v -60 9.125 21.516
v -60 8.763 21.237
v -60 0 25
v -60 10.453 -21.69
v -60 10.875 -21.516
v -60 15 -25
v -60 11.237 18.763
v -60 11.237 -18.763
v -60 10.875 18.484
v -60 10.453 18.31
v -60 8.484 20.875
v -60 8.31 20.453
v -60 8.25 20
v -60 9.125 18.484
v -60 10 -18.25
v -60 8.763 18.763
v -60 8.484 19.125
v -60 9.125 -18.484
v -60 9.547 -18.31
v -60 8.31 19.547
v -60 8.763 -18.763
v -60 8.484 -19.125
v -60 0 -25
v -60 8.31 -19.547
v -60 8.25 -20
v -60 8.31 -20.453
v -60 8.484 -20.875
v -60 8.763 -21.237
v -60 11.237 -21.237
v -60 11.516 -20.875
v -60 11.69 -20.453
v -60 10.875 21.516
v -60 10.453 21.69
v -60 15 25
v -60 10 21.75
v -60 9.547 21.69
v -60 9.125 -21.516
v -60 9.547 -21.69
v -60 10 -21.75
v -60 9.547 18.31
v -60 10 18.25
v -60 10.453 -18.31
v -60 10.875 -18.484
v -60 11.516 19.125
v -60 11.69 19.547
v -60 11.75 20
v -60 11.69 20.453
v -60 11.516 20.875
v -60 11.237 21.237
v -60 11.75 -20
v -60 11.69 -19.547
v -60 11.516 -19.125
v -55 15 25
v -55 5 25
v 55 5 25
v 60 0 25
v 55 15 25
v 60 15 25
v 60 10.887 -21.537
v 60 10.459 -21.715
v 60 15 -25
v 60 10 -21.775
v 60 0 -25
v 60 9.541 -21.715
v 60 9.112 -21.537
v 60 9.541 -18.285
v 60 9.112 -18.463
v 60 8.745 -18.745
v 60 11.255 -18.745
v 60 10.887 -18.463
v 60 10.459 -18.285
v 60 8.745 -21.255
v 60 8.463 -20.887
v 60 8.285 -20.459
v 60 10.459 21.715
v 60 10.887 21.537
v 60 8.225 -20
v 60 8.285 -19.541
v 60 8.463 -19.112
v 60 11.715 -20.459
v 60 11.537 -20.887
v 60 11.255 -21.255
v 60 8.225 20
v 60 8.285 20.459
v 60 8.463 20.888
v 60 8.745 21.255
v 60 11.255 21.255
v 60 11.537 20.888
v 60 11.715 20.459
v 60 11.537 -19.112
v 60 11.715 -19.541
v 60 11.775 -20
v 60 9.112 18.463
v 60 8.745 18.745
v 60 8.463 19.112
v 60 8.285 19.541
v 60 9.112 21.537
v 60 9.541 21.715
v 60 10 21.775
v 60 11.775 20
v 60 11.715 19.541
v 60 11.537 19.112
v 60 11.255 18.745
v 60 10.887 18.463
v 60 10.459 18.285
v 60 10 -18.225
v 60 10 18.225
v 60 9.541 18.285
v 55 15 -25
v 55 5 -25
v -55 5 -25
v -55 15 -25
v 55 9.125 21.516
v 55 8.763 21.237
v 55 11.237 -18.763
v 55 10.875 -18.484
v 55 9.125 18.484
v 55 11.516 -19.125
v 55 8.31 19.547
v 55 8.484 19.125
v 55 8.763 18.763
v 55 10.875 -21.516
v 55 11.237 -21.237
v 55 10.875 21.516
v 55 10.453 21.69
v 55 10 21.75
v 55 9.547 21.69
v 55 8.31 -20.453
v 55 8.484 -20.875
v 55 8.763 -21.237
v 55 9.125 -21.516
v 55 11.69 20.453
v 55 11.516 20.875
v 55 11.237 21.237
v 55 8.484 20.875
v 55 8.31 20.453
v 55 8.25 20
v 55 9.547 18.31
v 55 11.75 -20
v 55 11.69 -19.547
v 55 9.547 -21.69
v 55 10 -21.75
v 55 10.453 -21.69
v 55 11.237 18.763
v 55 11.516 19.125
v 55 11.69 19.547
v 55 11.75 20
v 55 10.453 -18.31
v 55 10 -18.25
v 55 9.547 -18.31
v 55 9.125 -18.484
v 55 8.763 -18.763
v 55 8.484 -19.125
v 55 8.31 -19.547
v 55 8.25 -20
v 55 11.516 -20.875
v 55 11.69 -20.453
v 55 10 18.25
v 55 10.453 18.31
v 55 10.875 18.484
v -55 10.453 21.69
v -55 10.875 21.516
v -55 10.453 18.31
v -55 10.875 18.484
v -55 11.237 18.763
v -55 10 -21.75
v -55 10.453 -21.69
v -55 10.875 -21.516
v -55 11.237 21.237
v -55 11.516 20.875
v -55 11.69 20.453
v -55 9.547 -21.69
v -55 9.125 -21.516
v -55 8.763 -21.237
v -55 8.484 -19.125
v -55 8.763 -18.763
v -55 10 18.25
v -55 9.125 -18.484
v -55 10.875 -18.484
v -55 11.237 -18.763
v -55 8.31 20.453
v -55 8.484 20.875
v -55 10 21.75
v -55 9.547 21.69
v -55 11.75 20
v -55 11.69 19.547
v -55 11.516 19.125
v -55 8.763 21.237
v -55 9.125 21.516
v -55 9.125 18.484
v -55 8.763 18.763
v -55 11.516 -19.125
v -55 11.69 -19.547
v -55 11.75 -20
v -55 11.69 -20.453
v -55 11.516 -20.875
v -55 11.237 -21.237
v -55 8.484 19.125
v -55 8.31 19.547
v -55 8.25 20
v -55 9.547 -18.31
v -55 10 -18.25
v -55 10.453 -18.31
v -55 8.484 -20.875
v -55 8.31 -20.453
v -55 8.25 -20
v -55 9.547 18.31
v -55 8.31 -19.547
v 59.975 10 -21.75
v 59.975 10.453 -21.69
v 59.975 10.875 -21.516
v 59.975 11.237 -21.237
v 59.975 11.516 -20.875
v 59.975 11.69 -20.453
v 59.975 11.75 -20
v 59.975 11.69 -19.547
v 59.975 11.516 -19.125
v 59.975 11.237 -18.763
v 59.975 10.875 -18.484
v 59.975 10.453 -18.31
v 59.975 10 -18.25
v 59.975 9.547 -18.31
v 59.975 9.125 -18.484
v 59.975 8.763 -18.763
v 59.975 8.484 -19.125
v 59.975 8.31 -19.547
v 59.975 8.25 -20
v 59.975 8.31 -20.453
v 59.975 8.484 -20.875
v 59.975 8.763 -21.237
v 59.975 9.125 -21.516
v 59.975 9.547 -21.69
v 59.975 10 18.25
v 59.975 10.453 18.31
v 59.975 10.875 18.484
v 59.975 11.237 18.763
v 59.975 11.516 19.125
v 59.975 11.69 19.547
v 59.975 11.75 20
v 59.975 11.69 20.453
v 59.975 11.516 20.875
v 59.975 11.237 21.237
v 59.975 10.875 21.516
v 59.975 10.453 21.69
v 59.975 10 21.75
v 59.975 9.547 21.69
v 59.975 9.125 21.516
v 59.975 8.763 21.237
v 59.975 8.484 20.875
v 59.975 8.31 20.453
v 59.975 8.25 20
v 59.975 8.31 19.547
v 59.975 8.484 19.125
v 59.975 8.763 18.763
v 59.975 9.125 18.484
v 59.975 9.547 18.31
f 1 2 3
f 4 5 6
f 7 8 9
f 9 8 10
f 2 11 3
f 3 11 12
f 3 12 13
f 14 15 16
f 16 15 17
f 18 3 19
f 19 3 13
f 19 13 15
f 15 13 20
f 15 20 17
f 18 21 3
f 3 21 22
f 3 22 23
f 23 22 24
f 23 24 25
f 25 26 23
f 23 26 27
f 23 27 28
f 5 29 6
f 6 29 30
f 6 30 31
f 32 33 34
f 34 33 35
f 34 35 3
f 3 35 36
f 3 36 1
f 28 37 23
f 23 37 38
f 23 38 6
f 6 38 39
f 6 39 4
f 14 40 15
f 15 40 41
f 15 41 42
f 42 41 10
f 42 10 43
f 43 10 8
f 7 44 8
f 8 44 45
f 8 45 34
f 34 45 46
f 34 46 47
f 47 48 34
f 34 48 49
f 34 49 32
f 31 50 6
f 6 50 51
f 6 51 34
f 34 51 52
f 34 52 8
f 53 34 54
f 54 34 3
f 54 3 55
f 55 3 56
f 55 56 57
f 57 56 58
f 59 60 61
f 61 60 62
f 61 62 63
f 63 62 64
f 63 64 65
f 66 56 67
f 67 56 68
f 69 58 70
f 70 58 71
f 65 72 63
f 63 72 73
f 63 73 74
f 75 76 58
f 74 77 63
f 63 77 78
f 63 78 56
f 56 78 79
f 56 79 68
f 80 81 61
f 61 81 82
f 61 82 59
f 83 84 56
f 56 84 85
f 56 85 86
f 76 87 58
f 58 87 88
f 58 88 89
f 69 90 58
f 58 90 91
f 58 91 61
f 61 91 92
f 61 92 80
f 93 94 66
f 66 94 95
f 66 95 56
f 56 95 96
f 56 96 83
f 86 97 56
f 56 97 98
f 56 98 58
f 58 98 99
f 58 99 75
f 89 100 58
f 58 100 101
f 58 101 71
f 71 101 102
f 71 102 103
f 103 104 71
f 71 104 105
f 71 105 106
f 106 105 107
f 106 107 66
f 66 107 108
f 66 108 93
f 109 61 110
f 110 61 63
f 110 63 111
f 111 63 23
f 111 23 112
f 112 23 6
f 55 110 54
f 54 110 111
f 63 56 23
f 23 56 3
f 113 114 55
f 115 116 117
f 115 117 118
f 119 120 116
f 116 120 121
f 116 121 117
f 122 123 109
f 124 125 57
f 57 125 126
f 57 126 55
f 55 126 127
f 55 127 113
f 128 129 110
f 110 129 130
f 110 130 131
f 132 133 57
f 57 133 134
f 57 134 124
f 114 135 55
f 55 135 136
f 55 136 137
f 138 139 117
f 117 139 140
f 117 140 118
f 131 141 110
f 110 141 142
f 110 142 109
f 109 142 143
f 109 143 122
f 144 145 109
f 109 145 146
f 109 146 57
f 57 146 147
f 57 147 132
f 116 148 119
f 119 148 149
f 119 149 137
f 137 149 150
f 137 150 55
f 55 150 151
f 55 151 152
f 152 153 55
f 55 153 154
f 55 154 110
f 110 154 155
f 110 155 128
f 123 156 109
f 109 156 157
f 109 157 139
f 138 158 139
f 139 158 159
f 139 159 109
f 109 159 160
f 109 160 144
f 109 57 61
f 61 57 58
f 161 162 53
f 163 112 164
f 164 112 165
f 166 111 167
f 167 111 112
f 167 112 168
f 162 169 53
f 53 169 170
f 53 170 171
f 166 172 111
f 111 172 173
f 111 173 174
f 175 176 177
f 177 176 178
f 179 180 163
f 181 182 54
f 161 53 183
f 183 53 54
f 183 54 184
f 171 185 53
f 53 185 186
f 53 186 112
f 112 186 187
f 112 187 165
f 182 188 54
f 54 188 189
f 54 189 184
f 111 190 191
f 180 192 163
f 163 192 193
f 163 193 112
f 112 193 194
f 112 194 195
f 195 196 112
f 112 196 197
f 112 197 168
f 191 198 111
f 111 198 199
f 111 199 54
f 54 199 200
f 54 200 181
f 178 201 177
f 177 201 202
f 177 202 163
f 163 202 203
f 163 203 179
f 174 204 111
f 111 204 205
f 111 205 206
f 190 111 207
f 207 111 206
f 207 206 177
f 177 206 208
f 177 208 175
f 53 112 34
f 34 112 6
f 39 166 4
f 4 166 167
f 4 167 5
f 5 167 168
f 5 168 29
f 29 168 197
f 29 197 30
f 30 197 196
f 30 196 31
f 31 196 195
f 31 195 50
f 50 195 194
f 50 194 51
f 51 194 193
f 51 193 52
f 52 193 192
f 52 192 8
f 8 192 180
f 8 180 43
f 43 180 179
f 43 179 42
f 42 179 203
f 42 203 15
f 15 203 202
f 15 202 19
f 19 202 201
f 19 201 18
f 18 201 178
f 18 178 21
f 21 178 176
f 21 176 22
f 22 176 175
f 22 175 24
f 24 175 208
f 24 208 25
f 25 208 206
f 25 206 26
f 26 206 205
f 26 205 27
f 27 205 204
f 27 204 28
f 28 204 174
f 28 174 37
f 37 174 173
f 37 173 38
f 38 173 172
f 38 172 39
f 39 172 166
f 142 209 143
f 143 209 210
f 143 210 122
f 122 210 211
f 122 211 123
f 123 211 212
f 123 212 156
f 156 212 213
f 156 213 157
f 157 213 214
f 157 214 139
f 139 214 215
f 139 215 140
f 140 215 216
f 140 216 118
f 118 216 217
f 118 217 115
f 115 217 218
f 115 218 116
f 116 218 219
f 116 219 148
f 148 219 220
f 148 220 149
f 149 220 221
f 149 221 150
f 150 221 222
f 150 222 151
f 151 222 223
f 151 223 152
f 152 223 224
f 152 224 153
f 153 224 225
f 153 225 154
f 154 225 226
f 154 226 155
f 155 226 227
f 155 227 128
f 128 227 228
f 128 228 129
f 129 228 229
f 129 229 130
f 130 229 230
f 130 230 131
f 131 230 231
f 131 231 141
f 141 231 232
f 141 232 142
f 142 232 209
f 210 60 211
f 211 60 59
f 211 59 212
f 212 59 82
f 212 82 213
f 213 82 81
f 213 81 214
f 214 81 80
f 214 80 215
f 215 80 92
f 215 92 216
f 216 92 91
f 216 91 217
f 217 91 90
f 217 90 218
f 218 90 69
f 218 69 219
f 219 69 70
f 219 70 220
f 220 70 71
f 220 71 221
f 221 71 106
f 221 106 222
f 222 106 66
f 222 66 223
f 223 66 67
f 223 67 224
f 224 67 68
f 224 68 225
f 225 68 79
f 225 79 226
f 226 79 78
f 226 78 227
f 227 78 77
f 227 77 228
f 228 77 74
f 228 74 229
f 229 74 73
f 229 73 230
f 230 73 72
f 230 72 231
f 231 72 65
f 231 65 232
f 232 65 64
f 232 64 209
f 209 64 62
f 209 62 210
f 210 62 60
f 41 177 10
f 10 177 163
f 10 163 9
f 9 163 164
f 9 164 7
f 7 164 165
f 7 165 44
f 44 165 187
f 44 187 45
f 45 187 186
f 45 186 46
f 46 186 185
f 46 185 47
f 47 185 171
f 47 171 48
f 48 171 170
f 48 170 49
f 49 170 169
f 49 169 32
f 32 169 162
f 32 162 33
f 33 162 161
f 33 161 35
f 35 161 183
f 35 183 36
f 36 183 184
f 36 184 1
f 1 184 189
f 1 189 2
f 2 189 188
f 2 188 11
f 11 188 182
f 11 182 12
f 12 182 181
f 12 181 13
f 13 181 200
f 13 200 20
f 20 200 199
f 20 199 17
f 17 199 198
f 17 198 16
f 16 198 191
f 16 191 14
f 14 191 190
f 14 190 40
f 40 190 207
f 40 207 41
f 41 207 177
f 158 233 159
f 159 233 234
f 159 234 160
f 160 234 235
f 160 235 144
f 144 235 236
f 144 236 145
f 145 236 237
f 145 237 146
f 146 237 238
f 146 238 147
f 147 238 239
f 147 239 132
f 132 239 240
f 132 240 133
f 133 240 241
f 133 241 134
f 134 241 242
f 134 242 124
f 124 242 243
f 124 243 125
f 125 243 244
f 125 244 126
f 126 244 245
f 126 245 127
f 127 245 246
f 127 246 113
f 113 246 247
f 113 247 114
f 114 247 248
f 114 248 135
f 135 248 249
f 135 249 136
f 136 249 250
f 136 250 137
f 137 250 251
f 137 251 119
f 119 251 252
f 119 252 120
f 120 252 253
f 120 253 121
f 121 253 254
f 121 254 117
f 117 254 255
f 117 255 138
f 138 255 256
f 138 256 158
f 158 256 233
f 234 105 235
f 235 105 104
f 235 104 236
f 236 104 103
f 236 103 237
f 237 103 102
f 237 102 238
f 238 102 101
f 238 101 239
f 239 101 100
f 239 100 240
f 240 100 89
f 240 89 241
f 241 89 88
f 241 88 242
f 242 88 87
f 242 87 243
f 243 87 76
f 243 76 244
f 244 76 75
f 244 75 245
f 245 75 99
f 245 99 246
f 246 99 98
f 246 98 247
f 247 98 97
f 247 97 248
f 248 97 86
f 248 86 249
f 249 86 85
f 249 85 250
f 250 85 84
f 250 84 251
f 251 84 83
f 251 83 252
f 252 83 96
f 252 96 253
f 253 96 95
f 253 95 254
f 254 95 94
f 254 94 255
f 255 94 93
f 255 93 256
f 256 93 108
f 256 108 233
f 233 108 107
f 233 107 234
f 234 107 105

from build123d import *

# Parameters (mm, degrees)
SKETCH1_W                            = 120
SKETCH1_H                            = 50
BOSS_EXTRUDE1_DEPTH                  = 5
SKETCH2_W                            = 5
SKETCH2_H                            = 50
BOSS_EXTRUDE2_DEPTH                  = 10
F_3_5_3_5_DIAMETER_HOLE1_D           = 3.5
F_3_5_3_5_DIAMETER_HOLE1_CSINK_D     = 3.55
F_3_5_3_5_DIAMETER_HOLE1_CSINK_ANGLE = 90


with BuildPart() as part:
    # Sketch1 → Boss-Extrude1 (new body)
    with BuildSketch(Plane(origin=(0, 0, 0), x_dir=(1, 0, 0), z_dir=(0, 1, 0))):
        Rectangle(SKETCH1_W, SKETCH1_H)
    extrude(amount=BOSS_EXTRUDE1_DEPTH)

    # Sketch2 → Boss-Extrude2 (add)
    with BuildSketch(Plane(origin=(0, 5, 0), x_dir=(1, 0, 0), z_dir=(0, 1, 0))):
        with Locations((-57.5, 0)):
            Rectangle(SKETCH2_W, SKETCH2_H)
        with Locations((57.5, 0)):
            Rectangle(SKETCH2_W, SKETCH2_H)
    extrude(amount=BOSS_EXTRUDE2_DEPTH)

    # Ø3.5 (3.5) Diameter Hole1 (through all)
    with Locations(Plane(origin=(60, 0, 0), x_dir=(0, 0, -1), z_dir=(1, 0, 0))):
        with Locations((-20, 10), (20, 10)):
            CounterSinkHole(F_3_5_3_5_DIAMETER_HOLE1_D / 2, F_3_5_3_5_DIAMETER_HOLE1_CSINK_D / 2, counter_sink_angle=F_3_5_3_5_DIAMETER_HOLE1_CSINK_ANGLE)


solid = part.part
